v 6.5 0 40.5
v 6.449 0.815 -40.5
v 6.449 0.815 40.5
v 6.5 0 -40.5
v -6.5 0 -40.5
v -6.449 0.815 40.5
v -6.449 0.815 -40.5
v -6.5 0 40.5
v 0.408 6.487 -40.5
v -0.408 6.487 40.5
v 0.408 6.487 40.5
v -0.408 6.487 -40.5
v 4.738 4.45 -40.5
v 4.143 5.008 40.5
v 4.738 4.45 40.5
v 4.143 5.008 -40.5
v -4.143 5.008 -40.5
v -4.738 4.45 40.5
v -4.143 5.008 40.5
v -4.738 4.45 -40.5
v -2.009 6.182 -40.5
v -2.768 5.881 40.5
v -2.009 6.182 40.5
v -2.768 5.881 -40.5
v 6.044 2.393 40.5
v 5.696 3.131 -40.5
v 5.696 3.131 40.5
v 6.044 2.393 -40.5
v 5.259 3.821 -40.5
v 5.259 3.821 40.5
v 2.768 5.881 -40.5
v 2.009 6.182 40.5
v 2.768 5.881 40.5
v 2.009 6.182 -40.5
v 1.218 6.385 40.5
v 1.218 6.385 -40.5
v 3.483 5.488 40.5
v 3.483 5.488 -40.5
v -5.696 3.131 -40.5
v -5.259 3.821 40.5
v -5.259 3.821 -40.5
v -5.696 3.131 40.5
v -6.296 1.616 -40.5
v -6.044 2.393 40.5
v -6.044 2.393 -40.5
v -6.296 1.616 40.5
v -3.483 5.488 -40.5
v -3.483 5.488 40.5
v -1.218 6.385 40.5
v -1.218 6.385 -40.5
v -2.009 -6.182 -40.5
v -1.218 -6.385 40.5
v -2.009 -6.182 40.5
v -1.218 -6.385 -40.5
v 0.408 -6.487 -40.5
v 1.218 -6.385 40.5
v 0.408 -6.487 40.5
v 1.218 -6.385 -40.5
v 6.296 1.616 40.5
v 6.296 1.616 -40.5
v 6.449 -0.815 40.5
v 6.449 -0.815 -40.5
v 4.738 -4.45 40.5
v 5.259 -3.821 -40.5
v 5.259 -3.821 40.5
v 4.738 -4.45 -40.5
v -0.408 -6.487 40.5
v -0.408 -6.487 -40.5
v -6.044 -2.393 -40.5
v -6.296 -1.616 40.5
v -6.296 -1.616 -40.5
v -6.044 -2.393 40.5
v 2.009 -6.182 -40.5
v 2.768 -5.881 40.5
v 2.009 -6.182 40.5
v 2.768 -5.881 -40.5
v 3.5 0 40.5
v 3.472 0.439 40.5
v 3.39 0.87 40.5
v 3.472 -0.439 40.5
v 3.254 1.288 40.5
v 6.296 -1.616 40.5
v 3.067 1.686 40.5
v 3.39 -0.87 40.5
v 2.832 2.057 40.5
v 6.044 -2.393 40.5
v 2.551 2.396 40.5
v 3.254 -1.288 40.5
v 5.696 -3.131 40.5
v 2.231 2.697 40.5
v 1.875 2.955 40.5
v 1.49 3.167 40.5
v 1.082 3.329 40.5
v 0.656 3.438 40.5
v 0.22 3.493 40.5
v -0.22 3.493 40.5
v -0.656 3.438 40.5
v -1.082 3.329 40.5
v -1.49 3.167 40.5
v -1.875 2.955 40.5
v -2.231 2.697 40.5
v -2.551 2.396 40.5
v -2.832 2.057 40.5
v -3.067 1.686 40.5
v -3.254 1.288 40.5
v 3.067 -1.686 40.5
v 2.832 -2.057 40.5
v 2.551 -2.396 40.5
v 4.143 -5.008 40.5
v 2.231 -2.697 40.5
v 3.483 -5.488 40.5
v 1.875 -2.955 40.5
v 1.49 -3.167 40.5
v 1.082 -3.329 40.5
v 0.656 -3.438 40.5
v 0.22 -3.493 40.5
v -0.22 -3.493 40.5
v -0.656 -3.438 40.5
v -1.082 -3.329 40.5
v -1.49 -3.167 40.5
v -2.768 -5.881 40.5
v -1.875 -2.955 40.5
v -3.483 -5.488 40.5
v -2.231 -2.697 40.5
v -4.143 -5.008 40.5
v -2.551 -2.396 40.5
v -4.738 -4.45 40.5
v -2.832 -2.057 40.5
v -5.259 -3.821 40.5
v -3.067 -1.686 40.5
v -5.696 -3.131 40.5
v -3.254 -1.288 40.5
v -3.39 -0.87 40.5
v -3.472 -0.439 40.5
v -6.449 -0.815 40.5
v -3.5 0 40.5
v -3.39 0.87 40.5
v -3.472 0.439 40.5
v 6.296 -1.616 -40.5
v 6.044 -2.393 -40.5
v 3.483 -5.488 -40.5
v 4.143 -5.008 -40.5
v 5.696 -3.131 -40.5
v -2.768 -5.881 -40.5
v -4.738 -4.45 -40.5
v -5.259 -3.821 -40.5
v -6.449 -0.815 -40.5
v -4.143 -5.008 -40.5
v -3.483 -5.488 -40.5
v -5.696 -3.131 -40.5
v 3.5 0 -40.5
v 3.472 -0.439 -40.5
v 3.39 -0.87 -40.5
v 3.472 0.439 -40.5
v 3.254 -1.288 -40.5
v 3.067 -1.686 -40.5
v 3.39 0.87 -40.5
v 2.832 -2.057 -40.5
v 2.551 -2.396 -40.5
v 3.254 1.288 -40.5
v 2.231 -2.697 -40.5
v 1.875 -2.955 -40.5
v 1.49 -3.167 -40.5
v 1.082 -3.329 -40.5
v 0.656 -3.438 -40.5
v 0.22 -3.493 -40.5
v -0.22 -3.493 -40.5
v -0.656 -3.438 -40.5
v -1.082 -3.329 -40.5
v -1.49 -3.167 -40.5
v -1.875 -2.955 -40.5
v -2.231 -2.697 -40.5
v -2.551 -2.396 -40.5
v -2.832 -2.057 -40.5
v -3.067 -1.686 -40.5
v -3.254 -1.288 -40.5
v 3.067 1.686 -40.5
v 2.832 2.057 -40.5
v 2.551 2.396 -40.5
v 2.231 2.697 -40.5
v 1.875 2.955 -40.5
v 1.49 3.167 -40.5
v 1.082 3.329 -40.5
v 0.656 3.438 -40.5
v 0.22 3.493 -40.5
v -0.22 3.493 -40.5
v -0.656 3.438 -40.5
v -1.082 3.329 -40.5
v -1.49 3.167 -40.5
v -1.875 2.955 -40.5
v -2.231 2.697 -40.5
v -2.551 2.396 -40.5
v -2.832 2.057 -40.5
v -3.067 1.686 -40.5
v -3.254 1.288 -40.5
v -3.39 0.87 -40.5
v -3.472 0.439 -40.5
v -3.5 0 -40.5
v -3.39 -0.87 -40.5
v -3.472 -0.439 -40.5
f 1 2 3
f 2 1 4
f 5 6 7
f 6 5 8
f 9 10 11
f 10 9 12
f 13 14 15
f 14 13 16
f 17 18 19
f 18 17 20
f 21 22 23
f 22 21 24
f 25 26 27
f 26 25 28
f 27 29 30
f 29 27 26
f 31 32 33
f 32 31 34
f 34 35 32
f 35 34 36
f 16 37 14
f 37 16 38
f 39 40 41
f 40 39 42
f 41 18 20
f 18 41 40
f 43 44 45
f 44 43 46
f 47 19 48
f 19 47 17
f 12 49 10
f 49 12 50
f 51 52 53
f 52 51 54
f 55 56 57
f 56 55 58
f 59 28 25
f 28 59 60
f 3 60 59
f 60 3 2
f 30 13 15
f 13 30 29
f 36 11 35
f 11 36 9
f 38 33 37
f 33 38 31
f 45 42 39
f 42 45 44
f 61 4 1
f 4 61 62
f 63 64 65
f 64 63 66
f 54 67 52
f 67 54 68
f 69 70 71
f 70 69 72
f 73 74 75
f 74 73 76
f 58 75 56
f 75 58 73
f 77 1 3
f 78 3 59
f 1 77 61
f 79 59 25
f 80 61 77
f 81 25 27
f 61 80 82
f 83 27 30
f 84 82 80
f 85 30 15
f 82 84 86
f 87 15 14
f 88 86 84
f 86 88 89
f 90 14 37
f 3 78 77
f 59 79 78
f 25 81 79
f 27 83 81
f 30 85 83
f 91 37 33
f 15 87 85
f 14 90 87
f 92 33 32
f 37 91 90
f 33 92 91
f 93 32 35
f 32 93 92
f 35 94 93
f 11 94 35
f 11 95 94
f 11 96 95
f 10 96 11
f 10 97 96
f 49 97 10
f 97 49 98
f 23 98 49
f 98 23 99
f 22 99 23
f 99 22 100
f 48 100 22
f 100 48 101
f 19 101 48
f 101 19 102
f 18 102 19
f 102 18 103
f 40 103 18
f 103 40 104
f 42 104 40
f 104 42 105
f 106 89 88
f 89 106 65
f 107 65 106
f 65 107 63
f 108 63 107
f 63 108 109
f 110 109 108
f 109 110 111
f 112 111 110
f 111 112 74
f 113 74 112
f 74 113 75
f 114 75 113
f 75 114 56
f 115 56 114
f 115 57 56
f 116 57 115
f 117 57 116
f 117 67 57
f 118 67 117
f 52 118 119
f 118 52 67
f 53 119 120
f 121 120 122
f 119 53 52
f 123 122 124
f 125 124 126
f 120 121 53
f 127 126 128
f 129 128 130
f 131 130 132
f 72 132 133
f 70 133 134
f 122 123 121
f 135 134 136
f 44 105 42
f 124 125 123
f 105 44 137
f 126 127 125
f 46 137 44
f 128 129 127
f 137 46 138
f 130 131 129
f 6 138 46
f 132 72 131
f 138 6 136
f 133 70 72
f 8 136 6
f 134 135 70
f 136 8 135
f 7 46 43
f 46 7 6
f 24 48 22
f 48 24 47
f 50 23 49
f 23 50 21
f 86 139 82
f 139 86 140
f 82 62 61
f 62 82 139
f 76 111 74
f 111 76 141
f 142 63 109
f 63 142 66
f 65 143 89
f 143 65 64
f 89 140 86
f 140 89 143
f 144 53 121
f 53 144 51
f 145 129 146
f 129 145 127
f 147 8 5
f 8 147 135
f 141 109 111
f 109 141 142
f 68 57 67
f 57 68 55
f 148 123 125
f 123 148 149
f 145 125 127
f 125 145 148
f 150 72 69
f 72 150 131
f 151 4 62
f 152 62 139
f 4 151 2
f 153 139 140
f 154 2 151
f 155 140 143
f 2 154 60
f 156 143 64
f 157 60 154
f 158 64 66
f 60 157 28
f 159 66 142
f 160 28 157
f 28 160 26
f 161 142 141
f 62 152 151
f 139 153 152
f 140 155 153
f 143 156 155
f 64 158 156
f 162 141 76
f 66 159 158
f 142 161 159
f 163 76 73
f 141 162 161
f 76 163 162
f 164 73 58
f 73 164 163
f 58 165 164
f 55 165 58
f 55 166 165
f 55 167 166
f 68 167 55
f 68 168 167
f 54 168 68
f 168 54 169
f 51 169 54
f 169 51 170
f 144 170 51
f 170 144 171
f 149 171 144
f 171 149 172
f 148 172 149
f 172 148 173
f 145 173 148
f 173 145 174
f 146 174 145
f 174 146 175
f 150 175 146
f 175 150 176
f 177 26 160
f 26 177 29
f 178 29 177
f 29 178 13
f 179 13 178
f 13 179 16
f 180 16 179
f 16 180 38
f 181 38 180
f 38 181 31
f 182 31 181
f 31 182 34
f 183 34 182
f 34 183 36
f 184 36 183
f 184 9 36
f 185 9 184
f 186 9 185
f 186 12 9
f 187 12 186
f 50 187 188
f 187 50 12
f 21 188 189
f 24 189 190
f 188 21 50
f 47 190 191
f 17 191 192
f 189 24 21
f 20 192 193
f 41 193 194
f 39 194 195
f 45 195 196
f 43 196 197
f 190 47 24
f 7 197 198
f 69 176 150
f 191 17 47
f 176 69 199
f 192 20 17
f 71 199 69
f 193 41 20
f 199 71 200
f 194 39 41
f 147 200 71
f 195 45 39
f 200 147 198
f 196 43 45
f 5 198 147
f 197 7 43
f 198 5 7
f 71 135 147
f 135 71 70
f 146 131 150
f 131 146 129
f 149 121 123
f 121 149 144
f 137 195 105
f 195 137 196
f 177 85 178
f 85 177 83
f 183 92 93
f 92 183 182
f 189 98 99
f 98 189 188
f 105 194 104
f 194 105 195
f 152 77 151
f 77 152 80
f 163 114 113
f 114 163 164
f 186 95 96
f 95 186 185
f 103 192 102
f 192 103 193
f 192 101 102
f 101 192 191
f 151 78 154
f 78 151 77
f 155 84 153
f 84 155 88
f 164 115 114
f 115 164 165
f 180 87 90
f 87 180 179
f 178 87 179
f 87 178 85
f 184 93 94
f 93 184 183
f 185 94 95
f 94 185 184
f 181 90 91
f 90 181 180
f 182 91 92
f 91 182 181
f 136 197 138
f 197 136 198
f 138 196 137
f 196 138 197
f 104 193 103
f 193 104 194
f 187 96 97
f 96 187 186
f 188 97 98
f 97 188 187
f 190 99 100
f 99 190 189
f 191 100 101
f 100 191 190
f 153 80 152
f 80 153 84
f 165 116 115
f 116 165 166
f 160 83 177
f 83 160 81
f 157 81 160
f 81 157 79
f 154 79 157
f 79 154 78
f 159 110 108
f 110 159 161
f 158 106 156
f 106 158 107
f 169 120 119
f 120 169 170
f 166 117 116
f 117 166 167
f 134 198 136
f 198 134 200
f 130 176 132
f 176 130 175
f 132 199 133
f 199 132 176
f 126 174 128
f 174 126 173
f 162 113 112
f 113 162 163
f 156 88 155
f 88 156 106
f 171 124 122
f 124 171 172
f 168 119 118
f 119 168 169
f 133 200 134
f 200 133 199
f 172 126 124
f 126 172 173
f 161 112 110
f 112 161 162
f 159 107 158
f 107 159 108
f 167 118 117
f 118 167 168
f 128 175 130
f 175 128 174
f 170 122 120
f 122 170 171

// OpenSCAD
$fn = 50;


difference() {
	union() {
		translate(v = [0, 0, -40.5000000000]) {
			cylinder(h = 81, r = 6.5000000000);
		}
	}
	union() {
		translate(v = [0, 0, -100.0000000000]) {
			cylinder(h = 200, r = 3.5000000000);
		}
	}
}
